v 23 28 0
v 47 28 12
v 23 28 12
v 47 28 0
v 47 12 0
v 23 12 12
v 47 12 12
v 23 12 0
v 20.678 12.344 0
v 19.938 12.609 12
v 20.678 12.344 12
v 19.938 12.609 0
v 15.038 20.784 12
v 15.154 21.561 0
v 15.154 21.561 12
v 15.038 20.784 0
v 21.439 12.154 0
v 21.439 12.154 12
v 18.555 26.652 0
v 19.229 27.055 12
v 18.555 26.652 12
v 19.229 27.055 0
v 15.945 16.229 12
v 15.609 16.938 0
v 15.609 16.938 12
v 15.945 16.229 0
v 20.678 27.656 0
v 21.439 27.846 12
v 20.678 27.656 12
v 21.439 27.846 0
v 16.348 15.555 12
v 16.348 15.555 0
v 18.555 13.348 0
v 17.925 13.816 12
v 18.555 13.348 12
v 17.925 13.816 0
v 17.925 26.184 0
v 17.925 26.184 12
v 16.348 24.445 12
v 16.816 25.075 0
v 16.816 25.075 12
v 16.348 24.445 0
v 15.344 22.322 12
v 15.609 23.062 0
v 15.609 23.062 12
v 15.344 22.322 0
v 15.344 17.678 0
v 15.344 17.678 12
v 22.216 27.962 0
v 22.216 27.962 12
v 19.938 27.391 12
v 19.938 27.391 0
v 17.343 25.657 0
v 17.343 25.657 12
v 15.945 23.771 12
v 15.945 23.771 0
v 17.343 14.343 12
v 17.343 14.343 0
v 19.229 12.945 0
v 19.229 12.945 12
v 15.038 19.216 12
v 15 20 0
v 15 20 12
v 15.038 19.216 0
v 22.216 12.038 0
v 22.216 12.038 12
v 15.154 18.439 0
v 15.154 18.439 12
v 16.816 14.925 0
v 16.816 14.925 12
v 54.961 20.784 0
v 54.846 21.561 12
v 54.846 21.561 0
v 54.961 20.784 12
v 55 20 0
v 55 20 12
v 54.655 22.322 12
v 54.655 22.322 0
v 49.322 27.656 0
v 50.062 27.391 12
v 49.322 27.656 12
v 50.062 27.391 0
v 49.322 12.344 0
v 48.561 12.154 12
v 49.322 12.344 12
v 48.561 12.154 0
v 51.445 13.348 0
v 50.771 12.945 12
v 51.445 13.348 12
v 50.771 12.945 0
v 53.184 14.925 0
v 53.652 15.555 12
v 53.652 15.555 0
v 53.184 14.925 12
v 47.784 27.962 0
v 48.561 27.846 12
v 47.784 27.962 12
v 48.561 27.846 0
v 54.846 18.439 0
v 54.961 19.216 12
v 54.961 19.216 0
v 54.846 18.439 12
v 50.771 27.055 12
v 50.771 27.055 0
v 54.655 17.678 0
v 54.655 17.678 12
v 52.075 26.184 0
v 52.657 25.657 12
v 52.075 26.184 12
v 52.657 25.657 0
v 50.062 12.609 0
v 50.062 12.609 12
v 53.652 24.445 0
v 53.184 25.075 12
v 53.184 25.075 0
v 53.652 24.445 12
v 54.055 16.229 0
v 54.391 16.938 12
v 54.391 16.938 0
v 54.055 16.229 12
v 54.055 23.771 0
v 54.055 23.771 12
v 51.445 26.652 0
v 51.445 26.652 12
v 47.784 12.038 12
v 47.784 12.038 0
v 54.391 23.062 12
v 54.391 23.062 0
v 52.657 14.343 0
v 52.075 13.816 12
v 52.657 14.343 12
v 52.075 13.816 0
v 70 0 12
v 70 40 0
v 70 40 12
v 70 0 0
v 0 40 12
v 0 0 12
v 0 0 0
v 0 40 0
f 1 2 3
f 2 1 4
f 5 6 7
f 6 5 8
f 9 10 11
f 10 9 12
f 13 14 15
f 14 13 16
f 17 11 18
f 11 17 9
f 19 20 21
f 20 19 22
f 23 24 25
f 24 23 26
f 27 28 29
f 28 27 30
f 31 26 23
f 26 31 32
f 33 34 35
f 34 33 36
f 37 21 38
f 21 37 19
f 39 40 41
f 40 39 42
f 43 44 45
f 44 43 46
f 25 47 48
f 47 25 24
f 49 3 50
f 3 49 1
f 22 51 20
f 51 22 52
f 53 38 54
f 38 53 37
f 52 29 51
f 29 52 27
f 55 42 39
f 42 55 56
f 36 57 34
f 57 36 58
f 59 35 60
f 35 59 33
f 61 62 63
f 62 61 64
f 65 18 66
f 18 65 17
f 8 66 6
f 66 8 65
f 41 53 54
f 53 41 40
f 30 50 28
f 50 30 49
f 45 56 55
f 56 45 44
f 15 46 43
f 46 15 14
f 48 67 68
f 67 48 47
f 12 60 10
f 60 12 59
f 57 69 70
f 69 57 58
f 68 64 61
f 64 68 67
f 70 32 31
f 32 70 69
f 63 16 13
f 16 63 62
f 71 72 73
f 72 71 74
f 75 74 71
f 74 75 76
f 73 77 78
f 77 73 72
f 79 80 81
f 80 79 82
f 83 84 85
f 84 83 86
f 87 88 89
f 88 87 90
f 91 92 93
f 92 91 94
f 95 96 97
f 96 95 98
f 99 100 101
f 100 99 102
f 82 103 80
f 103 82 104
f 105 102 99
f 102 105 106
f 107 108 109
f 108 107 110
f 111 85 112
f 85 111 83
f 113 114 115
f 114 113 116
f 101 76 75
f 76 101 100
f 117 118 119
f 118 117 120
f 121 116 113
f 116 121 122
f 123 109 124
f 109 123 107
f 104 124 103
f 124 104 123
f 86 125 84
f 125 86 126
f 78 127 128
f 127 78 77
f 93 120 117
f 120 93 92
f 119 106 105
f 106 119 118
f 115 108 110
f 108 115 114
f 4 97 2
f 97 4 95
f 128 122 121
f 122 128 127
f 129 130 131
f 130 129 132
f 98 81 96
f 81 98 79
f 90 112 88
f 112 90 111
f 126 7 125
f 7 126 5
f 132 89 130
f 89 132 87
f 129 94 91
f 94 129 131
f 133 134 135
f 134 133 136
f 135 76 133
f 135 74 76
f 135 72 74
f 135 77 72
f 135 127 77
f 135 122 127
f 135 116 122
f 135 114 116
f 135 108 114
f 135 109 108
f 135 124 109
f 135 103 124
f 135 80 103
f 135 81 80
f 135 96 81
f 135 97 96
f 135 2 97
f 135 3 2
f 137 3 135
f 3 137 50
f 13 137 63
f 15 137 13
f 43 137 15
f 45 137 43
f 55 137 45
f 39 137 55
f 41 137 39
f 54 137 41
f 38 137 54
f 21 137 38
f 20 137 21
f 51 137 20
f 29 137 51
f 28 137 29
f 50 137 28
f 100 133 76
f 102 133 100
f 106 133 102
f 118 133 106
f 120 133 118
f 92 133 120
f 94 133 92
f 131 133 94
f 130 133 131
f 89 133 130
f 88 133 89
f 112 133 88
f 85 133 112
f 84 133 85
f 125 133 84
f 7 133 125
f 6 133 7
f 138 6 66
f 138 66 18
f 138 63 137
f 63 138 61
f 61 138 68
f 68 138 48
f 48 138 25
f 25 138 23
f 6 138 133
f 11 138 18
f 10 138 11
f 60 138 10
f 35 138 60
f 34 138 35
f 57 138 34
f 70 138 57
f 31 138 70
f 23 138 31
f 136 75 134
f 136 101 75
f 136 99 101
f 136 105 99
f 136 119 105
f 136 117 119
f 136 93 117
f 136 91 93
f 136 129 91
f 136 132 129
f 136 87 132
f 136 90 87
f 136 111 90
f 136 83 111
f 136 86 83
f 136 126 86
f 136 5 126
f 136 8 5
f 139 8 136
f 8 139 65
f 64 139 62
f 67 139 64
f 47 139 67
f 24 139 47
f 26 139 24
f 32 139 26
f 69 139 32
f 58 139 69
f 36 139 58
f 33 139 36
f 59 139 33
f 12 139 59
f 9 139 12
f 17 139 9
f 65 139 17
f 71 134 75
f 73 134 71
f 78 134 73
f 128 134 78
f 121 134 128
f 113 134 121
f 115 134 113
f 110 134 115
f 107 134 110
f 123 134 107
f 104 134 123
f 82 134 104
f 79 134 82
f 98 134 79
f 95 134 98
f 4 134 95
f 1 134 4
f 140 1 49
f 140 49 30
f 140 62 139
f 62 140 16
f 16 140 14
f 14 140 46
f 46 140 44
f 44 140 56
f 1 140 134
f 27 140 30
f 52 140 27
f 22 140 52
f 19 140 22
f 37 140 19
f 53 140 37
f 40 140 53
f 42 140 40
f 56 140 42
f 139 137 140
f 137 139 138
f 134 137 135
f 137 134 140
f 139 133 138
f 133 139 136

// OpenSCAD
// 長孔板（slotplate）— 由 ortho_lib_work/objects.py 產生，請改 objects.py 後重建
// 平板 70×40×12，中央有一個長 40、寬 16 的長圓孔（兩端半圓）垂直貫穿。
difference() {
  union() {
    translate([0,0,0]) cube([70,40,12]);
  }
  union() {
    translate([23,12,-1]) cube([24,16,14]);
    multmatrix([[1,0,0,0],[0,1,0,0],[0,0,1,-1],[0,0,0,1]]) translate([23,20,0]) cylinder(h=14, r=8, $fn=64);
    multmatrix([[1,0,0,0],[0,1,0,0],[0,0,1,-1],[0,0,0,1]]) translate([47,20,0]) cylinder(h=14, r=8, $fn=64);
  }
}
